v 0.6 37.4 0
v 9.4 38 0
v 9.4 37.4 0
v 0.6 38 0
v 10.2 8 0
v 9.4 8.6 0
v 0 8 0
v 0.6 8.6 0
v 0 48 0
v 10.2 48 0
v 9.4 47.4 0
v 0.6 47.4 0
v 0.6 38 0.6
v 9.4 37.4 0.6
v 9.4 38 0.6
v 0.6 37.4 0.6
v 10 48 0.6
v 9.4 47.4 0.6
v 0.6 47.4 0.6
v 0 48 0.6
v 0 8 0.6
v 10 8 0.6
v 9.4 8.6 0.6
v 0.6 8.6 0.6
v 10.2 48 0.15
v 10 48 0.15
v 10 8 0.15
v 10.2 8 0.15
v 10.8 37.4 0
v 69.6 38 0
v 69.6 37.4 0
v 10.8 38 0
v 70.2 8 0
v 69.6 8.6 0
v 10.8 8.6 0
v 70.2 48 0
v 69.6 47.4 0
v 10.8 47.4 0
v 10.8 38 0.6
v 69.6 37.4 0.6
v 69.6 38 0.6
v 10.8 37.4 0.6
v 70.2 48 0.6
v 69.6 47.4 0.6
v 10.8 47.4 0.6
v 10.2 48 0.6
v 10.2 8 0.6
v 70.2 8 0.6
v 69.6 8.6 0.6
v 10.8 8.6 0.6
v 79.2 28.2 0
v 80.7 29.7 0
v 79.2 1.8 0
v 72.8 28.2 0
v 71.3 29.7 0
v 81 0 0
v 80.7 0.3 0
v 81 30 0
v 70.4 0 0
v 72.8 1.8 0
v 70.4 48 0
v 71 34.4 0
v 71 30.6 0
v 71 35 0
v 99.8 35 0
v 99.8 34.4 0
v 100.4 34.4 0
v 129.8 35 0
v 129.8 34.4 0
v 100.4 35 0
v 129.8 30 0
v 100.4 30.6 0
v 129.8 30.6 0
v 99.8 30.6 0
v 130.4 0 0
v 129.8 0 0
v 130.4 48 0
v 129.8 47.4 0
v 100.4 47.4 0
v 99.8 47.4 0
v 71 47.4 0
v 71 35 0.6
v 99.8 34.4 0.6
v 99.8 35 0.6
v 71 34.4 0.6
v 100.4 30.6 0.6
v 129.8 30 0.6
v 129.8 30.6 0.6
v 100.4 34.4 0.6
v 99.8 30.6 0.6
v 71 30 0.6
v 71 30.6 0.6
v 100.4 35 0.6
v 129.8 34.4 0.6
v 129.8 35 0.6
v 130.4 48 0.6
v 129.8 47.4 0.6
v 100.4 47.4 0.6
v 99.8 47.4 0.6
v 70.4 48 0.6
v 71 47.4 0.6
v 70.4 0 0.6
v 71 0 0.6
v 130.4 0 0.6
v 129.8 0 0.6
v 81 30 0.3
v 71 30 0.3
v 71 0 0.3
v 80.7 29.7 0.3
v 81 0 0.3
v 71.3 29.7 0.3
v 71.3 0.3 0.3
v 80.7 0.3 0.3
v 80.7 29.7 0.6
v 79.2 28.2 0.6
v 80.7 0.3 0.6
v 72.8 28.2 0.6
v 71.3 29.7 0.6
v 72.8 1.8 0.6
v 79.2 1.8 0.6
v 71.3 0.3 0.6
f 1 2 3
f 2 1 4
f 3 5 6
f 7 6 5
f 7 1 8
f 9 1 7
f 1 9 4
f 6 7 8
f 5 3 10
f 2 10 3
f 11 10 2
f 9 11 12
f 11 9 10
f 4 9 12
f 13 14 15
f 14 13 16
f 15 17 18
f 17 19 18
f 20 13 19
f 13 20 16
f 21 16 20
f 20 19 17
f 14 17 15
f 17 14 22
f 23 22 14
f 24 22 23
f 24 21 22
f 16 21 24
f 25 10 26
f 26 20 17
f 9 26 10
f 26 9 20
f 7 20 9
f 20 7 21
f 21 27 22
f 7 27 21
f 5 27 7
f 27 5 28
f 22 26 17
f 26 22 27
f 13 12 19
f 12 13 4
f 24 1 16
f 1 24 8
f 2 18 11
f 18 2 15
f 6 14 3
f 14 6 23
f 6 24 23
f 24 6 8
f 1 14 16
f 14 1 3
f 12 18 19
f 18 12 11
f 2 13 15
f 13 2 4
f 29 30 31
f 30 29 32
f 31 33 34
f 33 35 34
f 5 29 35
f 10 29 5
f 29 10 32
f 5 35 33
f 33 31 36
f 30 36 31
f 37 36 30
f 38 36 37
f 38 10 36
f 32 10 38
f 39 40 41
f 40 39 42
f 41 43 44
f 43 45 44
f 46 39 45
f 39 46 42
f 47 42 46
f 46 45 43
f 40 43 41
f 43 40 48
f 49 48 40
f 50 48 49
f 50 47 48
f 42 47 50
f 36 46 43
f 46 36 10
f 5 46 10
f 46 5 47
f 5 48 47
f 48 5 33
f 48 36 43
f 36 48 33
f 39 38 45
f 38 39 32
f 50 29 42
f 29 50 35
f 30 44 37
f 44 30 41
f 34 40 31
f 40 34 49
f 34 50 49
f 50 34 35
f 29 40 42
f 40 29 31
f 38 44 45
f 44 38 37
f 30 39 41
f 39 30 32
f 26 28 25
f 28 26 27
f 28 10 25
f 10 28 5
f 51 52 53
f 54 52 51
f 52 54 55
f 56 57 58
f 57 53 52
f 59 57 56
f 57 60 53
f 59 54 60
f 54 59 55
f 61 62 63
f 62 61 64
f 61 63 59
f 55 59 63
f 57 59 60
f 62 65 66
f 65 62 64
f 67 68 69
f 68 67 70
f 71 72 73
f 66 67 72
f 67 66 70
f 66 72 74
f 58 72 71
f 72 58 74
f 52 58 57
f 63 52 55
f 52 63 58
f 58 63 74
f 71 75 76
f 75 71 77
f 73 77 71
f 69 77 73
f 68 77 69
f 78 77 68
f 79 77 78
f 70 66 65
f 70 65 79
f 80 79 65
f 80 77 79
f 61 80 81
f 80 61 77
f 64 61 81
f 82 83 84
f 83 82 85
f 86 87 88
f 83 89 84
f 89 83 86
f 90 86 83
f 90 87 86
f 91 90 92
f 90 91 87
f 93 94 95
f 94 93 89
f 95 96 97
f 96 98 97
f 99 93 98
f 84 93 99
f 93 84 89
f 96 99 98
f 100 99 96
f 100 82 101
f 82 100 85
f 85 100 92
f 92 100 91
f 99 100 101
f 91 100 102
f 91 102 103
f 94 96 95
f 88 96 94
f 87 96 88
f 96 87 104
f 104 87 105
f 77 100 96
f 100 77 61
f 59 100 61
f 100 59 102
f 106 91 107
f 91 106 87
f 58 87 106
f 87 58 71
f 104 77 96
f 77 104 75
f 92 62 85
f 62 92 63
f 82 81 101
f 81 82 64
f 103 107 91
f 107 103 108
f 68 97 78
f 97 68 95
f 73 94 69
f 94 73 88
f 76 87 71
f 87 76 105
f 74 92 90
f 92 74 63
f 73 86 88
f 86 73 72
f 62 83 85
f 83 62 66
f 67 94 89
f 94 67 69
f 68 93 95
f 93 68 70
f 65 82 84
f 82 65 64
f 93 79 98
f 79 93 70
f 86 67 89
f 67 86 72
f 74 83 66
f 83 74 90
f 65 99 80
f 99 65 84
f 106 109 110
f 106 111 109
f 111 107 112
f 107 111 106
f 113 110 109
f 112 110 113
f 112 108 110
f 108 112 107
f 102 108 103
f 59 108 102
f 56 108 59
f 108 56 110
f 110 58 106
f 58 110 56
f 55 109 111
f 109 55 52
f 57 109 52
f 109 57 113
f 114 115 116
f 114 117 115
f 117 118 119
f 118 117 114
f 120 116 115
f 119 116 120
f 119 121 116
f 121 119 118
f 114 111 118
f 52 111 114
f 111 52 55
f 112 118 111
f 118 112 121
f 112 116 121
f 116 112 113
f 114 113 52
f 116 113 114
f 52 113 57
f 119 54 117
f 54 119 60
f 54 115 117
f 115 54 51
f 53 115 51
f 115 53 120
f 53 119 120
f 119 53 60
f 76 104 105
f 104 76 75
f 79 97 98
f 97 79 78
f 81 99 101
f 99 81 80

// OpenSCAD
frameThickness=0.6;
frameThicknessZ=0.6;
detailInsetThickness=0.3;
hingeGap = 0.2;
hingeThickness = 0.15;

mainHeight = 40;
raisedSectionLift = 8;

doorHeight = 30;
doorWidth = 10;

insetColour = "SaddleBrown";

translate([0,raisedSectionLift,0]) {
    doubleFrame(10,mainHeight,30); //leftmost window
    translate([10,0,0])
        hinge(mainHeight);
    translate([10+hingeGap,0,0])
        doubleFrame(60,mainHeight,30);
}
//TODO Add hinge here

translate([60+10+(hingeGap*2),0,0]) {
    frame(60, mainHeight+raisedSectionLift,[0,-frameThickness,0]);
    
    
    translate([frameThickness,0]){
        inset(){
            frame(doorWidth,doorHeight,frameThickness=detailInsetThickness);
        };
        translate([detailInsetThickness,detailInsetThickness]) {
            frame(doorWidth-detailInsetThickness*2,doorHeight-detailInsetThickness*2, frameThickness=1.5); //door
        }       
    } //
    
    translate([0,doorHeight]) 
        quadFrame(60,18,30,5);
    
    
}
module inset() {
    scaleDivisor = frameThicknessZ / detailInsetThickness;
    echo (scaleDivisor);
    color(insetColour) {
        scale([1,1,1/scaleDivisor]){
            children();
        }
    }
        
}

module quadFrame(width, height, horizontalBreak, verticalBreak) {
    union() {
        doubleFrame(width,height,verticalBreak);
        frame(horizontalBreak,height);
    }
}

module doubleFrame(width, height, break){
    union() {
        frame(width,height);
        translate([0,break-frameThickness])
            frame(width,height-break+frameThickness);
    }
}

module frame(width, height, offsetInternal=[0,0], frameThickness=frameThickness, frameThicknessZ=frameThicknessZ) {

    linear_extrude(frameThicknessZ) {
        difference() {
            square([width,height]);
            translate(offsetInternal){
                offset(-frameThickness){
                    square([width,height]-offsetInternal);
                }
            }
        }
    }
}

module hinge(height) {
    
    linear_extrude(hingeThickness) {
        square([hingeGap,height]);   
    }
}
